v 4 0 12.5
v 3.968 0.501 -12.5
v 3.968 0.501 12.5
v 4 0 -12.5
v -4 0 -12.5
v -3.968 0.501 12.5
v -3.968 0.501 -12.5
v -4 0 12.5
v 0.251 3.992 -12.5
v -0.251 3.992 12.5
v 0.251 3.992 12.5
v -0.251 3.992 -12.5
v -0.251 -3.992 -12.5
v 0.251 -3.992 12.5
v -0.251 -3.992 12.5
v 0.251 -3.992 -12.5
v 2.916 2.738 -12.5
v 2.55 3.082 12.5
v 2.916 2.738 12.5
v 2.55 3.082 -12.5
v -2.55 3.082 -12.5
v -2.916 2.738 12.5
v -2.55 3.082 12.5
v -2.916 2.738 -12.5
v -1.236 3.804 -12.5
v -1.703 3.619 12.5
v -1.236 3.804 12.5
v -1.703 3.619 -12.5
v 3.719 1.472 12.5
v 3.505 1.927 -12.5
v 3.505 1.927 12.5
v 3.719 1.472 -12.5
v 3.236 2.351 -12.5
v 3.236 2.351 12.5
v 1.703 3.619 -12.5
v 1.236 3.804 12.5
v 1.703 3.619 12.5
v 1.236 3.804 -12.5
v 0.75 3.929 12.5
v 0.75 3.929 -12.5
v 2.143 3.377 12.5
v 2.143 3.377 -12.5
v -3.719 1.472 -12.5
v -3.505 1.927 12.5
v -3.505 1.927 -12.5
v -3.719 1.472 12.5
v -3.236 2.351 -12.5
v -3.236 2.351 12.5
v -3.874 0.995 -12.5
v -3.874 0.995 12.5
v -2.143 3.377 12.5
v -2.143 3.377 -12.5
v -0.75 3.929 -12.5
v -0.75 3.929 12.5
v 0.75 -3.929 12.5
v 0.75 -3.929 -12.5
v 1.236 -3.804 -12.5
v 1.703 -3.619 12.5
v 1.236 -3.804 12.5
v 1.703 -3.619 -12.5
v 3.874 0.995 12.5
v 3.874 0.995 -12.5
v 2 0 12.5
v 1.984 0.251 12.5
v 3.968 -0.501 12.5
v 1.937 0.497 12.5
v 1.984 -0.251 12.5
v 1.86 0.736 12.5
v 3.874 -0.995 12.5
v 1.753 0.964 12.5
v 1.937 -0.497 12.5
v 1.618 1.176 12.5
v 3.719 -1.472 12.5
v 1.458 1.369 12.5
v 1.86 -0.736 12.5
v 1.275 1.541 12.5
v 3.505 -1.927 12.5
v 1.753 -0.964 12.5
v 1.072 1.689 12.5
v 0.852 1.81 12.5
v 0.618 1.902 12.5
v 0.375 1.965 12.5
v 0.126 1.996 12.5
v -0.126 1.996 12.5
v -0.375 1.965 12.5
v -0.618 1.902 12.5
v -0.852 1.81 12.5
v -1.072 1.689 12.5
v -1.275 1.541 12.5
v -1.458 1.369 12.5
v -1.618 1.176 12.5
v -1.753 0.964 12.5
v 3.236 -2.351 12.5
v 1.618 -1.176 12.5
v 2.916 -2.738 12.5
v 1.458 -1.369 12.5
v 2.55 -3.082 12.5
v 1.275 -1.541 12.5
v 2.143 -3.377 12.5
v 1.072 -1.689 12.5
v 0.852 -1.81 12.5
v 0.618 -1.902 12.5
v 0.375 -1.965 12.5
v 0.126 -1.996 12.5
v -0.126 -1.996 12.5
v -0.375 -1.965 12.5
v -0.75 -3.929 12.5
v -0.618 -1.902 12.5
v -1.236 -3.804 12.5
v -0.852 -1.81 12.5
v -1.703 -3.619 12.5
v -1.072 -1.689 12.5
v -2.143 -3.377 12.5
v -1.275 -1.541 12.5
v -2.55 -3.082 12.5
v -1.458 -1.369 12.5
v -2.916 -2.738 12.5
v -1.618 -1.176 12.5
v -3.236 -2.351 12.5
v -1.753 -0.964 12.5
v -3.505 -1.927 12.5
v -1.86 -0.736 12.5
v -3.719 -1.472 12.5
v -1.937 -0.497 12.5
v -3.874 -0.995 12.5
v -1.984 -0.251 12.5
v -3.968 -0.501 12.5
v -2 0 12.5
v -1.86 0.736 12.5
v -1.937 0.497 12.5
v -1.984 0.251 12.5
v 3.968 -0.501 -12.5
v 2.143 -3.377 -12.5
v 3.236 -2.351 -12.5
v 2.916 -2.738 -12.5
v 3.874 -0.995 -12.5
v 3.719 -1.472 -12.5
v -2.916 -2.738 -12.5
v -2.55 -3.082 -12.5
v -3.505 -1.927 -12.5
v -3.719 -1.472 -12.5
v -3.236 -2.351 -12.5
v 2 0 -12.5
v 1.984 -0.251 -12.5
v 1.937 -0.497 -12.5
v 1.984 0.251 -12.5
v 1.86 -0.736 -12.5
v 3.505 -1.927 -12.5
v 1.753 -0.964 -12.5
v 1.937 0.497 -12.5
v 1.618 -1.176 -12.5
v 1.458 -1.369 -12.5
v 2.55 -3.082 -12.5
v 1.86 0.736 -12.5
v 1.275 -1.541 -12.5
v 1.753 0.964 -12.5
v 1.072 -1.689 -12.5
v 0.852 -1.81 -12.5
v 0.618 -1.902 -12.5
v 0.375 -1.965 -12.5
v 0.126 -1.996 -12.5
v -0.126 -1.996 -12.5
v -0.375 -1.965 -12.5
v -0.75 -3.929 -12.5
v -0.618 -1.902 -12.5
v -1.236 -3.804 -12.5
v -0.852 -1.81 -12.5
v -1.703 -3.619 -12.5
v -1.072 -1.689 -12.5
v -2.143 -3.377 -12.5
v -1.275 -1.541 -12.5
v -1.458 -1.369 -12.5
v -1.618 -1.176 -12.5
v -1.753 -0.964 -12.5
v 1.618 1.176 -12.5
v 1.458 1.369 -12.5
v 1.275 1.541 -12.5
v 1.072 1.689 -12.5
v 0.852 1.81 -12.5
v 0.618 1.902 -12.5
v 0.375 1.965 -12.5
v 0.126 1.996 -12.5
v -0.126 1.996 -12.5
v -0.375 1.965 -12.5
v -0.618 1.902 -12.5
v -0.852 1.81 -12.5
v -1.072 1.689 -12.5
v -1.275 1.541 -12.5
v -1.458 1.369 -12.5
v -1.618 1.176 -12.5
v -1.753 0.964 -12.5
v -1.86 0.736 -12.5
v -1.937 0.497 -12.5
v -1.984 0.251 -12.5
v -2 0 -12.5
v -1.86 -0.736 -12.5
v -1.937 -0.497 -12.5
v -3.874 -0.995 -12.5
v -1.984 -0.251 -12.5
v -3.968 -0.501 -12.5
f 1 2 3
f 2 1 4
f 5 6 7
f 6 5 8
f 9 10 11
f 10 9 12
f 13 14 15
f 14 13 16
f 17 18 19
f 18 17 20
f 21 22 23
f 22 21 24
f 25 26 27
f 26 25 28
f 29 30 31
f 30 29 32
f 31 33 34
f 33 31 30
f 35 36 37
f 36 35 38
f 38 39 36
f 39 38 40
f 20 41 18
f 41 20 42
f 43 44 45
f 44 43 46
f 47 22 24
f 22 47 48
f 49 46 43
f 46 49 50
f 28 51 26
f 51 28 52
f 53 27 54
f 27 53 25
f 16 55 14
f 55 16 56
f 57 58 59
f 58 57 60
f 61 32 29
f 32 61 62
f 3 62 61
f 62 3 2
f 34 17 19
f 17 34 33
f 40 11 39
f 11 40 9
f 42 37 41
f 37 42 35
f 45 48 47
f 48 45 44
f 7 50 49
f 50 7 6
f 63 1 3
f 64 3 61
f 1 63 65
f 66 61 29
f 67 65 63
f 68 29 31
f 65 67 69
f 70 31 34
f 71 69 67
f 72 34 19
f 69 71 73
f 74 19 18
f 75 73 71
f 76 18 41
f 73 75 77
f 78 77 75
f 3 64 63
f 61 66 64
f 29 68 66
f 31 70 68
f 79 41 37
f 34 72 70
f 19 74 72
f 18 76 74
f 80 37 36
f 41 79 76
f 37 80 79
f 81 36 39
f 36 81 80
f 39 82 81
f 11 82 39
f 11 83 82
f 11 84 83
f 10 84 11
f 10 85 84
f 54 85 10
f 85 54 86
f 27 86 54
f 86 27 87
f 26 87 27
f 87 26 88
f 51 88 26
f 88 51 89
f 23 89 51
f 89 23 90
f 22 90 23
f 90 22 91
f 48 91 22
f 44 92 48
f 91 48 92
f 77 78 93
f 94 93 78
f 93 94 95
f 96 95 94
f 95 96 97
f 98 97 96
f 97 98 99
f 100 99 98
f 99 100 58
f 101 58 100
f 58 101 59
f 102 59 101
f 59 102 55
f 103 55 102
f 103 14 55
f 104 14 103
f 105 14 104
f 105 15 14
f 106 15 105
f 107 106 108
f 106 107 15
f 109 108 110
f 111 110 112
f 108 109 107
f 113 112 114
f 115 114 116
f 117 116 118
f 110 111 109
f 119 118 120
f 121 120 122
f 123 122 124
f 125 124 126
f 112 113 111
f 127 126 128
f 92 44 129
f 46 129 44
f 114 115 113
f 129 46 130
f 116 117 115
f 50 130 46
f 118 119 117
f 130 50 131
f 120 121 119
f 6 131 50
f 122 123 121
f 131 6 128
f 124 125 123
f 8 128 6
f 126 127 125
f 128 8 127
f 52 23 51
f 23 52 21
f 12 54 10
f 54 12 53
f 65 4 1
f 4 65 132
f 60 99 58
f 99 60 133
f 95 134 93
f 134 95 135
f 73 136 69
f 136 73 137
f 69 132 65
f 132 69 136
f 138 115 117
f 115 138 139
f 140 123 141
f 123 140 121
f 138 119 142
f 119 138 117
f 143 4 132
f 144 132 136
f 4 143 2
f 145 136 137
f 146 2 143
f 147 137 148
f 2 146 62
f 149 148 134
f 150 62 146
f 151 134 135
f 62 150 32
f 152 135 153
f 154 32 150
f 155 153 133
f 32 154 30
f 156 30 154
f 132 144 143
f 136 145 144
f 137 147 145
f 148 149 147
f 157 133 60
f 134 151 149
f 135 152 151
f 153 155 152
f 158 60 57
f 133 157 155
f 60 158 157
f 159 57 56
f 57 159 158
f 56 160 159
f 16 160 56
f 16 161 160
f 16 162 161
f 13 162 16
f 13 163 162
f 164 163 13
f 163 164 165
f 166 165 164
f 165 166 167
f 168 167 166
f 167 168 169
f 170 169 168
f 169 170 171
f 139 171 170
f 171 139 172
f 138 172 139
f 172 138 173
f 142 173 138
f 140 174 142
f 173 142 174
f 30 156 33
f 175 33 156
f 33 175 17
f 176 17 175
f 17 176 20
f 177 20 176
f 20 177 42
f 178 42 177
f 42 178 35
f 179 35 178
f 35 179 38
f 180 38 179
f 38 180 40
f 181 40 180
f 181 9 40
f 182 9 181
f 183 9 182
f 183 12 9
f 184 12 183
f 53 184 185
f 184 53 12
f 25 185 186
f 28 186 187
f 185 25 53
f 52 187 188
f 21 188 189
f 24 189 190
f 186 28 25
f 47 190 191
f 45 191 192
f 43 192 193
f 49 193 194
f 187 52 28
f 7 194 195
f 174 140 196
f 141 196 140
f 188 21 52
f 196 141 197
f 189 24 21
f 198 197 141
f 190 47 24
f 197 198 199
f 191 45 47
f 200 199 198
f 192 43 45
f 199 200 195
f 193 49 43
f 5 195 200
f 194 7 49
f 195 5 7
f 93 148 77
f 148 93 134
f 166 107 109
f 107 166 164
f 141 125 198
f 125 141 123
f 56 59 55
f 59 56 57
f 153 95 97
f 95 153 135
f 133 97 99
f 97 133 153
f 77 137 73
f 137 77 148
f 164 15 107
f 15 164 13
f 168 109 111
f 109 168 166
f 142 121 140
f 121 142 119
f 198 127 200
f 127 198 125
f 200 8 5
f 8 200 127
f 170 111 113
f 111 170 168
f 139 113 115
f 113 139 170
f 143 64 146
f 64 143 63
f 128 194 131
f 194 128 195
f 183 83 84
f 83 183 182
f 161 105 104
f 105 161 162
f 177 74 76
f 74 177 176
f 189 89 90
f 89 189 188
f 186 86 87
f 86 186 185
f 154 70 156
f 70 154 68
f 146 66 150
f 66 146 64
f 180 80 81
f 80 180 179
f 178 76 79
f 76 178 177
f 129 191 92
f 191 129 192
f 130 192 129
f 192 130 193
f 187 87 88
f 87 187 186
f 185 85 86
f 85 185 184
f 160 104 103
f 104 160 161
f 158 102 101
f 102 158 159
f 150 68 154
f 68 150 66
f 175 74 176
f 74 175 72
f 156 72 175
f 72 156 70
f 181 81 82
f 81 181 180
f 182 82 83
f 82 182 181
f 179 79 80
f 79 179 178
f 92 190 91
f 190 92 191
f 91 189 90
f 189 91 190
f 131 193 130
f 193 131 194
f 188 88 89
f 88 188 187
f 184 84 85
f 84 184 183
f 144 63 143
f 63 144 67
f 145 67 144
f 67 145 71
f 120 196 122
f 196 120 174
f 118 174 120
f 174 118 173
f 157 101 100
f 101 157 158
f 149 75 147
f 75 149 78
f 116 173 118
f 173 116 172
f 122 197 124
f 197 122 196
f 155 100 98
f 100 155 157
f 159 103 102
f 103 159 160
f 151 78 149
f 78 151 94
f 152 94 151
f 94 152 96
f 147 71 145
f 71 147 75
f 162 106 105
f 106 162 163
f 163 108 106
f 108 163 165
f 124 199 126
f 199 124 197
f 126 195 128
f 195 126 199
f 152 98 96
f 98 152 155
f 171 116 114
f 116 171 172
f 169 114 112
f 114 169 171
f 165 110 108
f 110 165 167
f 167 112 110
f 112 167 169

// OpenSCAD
$fn = 50;


difference() {
	union() {
		translate(v = [0, 0, -12.5000000000]) {
			cylinder(h = 25, r = 4.0000000000);
		}
	}
	union() {
		translate(v = [0, 0, -100.0000000000]) {
			cylinder(h = 200, r = 2);
		}
	}
}
